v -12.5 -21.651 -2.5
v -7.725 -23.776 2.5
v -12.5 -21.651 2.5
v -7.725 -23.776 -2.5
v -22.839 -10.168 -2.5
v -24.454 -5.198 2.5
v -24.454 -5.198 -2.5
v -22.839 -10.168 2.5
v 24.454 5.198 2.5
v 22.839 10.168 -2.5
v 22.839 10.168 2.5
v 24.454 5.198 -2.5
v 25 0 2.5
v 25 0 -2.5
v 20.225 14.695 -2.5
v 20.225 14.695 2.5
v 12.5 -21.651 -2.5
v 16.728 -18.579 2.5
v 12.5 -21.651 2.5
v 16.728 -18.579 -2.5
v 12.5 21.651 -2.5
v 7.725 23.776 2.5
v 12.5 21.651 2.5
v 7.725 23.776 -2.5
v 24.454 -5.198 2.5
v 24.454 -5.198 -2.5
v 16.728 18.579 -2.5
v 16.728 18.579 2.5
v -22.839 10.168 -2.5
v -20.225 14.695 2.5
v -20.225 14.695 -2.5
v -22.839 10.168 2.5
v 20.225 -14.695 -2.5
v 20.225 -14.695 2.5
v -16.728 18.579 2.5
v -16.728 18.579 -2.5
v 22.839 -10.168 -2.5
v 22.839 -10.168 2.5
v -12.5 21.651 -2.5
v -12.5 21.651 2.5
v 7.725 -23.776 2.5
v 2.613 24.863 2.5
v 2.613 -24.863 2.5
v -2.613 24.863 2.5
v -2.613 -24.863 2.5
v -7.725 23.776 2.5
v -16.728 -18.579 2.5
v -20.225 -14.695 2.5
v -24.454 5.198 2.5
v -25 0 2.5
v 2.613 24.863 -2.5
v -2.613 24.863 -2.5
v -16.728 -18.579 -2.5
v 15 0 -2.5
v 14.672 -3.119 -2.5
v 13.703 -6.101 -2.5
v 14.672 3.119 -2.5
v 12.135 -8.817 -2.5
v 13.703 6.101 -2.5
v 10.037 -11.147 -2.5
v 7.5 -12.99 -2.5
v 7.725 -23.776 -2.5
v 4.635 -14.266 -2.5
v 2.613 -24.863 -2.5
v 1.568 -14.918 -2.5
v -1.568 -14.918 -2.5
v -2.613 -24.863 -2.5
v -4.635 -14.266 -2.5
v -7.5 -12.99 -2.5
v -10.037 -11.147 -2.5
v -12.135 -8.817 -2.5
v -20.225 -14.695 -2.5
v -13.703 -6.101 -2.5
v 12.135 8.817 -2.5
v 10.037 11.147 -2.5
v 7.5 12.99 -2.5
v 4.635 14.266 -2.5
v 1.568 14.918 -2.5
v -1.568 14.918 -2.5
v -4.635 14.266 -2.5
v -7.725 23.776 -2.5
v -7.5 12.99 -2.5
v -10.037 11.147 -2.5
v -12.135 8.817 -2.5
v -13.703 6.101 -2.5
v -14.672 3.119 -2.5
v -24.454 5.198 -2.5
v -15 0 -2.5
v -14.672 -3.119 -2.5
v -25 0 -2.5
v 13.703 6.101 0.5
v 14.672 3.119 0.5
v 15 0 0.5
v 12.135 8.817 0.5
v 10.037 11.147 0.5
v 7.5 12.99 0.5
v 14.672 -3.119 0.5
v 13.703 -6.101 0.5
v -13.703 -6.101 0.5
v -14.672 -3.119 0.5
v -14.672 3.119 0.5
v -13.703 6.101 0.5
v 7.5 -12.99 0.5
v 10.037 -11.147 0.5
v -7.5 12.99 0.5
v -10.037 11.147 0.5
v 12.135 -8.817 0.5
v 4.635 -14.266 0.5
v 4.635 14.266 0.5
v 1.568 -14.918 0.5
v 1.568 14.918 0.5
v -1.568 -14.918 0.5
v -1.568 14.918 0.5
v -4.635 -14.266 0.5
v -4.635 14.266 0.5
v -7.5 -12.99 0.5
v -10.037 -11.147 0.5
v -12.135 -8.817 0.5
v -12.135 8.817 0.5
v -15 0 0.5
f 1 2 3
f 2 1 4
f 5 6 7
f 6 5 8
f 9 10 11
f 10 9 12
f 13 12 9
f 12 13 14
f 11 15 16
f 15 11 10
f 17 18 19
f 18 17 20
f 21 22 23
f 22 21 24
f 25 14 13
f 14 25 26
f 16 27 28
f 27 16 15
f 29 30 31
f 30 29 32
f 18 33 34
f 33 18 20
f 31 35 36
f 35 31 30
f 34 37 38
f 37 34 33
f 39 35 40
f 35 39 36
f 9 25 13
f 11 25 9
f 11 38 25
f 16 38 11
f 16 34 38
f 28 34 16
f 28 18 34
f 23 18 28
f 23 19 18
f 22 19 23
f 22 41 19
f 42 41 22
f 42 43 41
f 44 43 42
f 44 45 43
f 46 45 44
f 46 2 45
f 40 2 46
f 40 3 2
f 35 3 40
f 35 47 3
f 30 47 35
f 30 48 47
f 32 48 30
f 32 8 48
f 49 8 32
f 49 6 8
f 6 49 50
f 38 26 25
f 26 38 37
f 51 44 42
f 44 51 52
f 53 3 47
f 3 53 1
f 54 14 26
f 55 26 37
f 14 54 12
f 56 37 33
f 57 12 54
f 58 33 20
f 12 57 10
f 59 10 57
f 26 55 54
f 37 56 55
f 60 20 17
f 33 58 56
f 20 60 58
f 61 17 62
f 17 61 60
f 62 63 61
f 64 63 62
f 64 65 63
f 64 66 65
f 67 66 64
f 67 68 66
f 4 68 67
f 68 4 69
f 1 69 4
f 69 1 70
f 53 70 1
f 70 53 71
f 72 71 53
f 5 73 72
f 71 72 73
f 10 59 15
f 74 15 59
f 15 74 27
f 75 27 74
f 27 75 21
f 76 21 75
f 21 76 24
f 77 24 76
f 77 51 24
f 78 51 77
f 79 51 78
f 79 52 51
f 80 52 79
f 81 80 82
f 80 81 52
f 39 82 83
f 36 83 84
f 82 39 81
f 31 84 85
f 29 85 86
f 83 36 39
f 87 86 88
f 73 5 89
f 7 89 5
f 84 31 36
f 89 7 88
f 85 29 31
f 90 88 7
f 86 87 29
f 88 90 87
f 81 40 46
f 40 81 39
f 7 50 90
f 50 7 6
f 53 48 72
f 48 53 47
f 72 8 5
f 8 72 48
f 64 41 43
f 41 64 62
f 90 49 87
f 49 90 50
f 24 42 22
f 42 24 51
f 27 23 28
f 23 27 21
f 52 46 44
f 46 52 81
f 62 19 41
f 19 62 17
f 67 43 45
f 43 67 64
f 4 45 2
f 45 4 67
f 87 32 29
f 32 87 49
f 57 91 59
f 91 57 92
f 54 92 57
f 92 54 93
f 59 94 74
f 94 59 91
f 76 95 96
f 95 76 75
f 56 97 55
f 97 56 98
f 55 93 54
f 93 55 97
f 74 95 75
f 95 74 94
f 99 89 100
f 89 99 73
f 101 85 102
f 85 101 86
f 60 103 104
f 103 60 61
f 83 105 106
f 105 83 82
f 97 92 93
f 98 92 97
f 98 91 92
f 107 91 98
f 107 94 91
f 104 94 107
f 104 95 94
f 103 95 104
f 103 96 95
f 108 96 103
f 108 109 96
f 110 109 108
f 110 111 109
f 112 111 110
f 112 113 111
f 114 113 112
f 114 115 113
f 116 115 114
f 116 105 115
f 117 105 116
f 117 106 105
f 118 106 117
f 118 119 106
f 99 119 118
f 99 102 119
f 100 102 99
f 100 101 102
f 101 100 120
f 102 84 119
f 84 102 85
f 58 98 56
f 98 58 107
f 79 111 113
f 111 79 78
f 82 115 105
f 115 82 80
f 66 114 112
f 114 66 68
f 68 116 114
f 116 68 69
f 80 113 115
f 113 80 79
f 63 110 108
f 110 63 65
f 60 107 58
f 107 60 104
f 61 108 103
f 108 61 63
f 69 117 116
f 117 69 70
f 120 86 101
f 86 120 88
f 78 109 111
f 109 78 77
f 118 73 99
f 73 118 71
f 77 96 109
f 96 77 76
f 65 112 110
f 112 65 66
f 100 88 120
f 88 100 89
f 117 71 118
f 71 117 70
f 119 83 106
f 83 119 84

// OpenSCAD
// Dimensions for the ring spacer
module ring_spacer(inner_diameter, outer_diameter, thickness) {
    difference() {
        // Outer ring
        cylinder(d = outer_diameter, h = thickness, center = true);
        // Inner hollow section
        translate([0, 0, -thickness / 2])
            cylinder(d = inner_diameter, h = thickness + 1, center = true);
    }
}

// Test render of the ring spacer
translate([0, 0, 0]) ring_spacer(inner_diameter = 30, outer_diameter = 50, thickness = 5);
